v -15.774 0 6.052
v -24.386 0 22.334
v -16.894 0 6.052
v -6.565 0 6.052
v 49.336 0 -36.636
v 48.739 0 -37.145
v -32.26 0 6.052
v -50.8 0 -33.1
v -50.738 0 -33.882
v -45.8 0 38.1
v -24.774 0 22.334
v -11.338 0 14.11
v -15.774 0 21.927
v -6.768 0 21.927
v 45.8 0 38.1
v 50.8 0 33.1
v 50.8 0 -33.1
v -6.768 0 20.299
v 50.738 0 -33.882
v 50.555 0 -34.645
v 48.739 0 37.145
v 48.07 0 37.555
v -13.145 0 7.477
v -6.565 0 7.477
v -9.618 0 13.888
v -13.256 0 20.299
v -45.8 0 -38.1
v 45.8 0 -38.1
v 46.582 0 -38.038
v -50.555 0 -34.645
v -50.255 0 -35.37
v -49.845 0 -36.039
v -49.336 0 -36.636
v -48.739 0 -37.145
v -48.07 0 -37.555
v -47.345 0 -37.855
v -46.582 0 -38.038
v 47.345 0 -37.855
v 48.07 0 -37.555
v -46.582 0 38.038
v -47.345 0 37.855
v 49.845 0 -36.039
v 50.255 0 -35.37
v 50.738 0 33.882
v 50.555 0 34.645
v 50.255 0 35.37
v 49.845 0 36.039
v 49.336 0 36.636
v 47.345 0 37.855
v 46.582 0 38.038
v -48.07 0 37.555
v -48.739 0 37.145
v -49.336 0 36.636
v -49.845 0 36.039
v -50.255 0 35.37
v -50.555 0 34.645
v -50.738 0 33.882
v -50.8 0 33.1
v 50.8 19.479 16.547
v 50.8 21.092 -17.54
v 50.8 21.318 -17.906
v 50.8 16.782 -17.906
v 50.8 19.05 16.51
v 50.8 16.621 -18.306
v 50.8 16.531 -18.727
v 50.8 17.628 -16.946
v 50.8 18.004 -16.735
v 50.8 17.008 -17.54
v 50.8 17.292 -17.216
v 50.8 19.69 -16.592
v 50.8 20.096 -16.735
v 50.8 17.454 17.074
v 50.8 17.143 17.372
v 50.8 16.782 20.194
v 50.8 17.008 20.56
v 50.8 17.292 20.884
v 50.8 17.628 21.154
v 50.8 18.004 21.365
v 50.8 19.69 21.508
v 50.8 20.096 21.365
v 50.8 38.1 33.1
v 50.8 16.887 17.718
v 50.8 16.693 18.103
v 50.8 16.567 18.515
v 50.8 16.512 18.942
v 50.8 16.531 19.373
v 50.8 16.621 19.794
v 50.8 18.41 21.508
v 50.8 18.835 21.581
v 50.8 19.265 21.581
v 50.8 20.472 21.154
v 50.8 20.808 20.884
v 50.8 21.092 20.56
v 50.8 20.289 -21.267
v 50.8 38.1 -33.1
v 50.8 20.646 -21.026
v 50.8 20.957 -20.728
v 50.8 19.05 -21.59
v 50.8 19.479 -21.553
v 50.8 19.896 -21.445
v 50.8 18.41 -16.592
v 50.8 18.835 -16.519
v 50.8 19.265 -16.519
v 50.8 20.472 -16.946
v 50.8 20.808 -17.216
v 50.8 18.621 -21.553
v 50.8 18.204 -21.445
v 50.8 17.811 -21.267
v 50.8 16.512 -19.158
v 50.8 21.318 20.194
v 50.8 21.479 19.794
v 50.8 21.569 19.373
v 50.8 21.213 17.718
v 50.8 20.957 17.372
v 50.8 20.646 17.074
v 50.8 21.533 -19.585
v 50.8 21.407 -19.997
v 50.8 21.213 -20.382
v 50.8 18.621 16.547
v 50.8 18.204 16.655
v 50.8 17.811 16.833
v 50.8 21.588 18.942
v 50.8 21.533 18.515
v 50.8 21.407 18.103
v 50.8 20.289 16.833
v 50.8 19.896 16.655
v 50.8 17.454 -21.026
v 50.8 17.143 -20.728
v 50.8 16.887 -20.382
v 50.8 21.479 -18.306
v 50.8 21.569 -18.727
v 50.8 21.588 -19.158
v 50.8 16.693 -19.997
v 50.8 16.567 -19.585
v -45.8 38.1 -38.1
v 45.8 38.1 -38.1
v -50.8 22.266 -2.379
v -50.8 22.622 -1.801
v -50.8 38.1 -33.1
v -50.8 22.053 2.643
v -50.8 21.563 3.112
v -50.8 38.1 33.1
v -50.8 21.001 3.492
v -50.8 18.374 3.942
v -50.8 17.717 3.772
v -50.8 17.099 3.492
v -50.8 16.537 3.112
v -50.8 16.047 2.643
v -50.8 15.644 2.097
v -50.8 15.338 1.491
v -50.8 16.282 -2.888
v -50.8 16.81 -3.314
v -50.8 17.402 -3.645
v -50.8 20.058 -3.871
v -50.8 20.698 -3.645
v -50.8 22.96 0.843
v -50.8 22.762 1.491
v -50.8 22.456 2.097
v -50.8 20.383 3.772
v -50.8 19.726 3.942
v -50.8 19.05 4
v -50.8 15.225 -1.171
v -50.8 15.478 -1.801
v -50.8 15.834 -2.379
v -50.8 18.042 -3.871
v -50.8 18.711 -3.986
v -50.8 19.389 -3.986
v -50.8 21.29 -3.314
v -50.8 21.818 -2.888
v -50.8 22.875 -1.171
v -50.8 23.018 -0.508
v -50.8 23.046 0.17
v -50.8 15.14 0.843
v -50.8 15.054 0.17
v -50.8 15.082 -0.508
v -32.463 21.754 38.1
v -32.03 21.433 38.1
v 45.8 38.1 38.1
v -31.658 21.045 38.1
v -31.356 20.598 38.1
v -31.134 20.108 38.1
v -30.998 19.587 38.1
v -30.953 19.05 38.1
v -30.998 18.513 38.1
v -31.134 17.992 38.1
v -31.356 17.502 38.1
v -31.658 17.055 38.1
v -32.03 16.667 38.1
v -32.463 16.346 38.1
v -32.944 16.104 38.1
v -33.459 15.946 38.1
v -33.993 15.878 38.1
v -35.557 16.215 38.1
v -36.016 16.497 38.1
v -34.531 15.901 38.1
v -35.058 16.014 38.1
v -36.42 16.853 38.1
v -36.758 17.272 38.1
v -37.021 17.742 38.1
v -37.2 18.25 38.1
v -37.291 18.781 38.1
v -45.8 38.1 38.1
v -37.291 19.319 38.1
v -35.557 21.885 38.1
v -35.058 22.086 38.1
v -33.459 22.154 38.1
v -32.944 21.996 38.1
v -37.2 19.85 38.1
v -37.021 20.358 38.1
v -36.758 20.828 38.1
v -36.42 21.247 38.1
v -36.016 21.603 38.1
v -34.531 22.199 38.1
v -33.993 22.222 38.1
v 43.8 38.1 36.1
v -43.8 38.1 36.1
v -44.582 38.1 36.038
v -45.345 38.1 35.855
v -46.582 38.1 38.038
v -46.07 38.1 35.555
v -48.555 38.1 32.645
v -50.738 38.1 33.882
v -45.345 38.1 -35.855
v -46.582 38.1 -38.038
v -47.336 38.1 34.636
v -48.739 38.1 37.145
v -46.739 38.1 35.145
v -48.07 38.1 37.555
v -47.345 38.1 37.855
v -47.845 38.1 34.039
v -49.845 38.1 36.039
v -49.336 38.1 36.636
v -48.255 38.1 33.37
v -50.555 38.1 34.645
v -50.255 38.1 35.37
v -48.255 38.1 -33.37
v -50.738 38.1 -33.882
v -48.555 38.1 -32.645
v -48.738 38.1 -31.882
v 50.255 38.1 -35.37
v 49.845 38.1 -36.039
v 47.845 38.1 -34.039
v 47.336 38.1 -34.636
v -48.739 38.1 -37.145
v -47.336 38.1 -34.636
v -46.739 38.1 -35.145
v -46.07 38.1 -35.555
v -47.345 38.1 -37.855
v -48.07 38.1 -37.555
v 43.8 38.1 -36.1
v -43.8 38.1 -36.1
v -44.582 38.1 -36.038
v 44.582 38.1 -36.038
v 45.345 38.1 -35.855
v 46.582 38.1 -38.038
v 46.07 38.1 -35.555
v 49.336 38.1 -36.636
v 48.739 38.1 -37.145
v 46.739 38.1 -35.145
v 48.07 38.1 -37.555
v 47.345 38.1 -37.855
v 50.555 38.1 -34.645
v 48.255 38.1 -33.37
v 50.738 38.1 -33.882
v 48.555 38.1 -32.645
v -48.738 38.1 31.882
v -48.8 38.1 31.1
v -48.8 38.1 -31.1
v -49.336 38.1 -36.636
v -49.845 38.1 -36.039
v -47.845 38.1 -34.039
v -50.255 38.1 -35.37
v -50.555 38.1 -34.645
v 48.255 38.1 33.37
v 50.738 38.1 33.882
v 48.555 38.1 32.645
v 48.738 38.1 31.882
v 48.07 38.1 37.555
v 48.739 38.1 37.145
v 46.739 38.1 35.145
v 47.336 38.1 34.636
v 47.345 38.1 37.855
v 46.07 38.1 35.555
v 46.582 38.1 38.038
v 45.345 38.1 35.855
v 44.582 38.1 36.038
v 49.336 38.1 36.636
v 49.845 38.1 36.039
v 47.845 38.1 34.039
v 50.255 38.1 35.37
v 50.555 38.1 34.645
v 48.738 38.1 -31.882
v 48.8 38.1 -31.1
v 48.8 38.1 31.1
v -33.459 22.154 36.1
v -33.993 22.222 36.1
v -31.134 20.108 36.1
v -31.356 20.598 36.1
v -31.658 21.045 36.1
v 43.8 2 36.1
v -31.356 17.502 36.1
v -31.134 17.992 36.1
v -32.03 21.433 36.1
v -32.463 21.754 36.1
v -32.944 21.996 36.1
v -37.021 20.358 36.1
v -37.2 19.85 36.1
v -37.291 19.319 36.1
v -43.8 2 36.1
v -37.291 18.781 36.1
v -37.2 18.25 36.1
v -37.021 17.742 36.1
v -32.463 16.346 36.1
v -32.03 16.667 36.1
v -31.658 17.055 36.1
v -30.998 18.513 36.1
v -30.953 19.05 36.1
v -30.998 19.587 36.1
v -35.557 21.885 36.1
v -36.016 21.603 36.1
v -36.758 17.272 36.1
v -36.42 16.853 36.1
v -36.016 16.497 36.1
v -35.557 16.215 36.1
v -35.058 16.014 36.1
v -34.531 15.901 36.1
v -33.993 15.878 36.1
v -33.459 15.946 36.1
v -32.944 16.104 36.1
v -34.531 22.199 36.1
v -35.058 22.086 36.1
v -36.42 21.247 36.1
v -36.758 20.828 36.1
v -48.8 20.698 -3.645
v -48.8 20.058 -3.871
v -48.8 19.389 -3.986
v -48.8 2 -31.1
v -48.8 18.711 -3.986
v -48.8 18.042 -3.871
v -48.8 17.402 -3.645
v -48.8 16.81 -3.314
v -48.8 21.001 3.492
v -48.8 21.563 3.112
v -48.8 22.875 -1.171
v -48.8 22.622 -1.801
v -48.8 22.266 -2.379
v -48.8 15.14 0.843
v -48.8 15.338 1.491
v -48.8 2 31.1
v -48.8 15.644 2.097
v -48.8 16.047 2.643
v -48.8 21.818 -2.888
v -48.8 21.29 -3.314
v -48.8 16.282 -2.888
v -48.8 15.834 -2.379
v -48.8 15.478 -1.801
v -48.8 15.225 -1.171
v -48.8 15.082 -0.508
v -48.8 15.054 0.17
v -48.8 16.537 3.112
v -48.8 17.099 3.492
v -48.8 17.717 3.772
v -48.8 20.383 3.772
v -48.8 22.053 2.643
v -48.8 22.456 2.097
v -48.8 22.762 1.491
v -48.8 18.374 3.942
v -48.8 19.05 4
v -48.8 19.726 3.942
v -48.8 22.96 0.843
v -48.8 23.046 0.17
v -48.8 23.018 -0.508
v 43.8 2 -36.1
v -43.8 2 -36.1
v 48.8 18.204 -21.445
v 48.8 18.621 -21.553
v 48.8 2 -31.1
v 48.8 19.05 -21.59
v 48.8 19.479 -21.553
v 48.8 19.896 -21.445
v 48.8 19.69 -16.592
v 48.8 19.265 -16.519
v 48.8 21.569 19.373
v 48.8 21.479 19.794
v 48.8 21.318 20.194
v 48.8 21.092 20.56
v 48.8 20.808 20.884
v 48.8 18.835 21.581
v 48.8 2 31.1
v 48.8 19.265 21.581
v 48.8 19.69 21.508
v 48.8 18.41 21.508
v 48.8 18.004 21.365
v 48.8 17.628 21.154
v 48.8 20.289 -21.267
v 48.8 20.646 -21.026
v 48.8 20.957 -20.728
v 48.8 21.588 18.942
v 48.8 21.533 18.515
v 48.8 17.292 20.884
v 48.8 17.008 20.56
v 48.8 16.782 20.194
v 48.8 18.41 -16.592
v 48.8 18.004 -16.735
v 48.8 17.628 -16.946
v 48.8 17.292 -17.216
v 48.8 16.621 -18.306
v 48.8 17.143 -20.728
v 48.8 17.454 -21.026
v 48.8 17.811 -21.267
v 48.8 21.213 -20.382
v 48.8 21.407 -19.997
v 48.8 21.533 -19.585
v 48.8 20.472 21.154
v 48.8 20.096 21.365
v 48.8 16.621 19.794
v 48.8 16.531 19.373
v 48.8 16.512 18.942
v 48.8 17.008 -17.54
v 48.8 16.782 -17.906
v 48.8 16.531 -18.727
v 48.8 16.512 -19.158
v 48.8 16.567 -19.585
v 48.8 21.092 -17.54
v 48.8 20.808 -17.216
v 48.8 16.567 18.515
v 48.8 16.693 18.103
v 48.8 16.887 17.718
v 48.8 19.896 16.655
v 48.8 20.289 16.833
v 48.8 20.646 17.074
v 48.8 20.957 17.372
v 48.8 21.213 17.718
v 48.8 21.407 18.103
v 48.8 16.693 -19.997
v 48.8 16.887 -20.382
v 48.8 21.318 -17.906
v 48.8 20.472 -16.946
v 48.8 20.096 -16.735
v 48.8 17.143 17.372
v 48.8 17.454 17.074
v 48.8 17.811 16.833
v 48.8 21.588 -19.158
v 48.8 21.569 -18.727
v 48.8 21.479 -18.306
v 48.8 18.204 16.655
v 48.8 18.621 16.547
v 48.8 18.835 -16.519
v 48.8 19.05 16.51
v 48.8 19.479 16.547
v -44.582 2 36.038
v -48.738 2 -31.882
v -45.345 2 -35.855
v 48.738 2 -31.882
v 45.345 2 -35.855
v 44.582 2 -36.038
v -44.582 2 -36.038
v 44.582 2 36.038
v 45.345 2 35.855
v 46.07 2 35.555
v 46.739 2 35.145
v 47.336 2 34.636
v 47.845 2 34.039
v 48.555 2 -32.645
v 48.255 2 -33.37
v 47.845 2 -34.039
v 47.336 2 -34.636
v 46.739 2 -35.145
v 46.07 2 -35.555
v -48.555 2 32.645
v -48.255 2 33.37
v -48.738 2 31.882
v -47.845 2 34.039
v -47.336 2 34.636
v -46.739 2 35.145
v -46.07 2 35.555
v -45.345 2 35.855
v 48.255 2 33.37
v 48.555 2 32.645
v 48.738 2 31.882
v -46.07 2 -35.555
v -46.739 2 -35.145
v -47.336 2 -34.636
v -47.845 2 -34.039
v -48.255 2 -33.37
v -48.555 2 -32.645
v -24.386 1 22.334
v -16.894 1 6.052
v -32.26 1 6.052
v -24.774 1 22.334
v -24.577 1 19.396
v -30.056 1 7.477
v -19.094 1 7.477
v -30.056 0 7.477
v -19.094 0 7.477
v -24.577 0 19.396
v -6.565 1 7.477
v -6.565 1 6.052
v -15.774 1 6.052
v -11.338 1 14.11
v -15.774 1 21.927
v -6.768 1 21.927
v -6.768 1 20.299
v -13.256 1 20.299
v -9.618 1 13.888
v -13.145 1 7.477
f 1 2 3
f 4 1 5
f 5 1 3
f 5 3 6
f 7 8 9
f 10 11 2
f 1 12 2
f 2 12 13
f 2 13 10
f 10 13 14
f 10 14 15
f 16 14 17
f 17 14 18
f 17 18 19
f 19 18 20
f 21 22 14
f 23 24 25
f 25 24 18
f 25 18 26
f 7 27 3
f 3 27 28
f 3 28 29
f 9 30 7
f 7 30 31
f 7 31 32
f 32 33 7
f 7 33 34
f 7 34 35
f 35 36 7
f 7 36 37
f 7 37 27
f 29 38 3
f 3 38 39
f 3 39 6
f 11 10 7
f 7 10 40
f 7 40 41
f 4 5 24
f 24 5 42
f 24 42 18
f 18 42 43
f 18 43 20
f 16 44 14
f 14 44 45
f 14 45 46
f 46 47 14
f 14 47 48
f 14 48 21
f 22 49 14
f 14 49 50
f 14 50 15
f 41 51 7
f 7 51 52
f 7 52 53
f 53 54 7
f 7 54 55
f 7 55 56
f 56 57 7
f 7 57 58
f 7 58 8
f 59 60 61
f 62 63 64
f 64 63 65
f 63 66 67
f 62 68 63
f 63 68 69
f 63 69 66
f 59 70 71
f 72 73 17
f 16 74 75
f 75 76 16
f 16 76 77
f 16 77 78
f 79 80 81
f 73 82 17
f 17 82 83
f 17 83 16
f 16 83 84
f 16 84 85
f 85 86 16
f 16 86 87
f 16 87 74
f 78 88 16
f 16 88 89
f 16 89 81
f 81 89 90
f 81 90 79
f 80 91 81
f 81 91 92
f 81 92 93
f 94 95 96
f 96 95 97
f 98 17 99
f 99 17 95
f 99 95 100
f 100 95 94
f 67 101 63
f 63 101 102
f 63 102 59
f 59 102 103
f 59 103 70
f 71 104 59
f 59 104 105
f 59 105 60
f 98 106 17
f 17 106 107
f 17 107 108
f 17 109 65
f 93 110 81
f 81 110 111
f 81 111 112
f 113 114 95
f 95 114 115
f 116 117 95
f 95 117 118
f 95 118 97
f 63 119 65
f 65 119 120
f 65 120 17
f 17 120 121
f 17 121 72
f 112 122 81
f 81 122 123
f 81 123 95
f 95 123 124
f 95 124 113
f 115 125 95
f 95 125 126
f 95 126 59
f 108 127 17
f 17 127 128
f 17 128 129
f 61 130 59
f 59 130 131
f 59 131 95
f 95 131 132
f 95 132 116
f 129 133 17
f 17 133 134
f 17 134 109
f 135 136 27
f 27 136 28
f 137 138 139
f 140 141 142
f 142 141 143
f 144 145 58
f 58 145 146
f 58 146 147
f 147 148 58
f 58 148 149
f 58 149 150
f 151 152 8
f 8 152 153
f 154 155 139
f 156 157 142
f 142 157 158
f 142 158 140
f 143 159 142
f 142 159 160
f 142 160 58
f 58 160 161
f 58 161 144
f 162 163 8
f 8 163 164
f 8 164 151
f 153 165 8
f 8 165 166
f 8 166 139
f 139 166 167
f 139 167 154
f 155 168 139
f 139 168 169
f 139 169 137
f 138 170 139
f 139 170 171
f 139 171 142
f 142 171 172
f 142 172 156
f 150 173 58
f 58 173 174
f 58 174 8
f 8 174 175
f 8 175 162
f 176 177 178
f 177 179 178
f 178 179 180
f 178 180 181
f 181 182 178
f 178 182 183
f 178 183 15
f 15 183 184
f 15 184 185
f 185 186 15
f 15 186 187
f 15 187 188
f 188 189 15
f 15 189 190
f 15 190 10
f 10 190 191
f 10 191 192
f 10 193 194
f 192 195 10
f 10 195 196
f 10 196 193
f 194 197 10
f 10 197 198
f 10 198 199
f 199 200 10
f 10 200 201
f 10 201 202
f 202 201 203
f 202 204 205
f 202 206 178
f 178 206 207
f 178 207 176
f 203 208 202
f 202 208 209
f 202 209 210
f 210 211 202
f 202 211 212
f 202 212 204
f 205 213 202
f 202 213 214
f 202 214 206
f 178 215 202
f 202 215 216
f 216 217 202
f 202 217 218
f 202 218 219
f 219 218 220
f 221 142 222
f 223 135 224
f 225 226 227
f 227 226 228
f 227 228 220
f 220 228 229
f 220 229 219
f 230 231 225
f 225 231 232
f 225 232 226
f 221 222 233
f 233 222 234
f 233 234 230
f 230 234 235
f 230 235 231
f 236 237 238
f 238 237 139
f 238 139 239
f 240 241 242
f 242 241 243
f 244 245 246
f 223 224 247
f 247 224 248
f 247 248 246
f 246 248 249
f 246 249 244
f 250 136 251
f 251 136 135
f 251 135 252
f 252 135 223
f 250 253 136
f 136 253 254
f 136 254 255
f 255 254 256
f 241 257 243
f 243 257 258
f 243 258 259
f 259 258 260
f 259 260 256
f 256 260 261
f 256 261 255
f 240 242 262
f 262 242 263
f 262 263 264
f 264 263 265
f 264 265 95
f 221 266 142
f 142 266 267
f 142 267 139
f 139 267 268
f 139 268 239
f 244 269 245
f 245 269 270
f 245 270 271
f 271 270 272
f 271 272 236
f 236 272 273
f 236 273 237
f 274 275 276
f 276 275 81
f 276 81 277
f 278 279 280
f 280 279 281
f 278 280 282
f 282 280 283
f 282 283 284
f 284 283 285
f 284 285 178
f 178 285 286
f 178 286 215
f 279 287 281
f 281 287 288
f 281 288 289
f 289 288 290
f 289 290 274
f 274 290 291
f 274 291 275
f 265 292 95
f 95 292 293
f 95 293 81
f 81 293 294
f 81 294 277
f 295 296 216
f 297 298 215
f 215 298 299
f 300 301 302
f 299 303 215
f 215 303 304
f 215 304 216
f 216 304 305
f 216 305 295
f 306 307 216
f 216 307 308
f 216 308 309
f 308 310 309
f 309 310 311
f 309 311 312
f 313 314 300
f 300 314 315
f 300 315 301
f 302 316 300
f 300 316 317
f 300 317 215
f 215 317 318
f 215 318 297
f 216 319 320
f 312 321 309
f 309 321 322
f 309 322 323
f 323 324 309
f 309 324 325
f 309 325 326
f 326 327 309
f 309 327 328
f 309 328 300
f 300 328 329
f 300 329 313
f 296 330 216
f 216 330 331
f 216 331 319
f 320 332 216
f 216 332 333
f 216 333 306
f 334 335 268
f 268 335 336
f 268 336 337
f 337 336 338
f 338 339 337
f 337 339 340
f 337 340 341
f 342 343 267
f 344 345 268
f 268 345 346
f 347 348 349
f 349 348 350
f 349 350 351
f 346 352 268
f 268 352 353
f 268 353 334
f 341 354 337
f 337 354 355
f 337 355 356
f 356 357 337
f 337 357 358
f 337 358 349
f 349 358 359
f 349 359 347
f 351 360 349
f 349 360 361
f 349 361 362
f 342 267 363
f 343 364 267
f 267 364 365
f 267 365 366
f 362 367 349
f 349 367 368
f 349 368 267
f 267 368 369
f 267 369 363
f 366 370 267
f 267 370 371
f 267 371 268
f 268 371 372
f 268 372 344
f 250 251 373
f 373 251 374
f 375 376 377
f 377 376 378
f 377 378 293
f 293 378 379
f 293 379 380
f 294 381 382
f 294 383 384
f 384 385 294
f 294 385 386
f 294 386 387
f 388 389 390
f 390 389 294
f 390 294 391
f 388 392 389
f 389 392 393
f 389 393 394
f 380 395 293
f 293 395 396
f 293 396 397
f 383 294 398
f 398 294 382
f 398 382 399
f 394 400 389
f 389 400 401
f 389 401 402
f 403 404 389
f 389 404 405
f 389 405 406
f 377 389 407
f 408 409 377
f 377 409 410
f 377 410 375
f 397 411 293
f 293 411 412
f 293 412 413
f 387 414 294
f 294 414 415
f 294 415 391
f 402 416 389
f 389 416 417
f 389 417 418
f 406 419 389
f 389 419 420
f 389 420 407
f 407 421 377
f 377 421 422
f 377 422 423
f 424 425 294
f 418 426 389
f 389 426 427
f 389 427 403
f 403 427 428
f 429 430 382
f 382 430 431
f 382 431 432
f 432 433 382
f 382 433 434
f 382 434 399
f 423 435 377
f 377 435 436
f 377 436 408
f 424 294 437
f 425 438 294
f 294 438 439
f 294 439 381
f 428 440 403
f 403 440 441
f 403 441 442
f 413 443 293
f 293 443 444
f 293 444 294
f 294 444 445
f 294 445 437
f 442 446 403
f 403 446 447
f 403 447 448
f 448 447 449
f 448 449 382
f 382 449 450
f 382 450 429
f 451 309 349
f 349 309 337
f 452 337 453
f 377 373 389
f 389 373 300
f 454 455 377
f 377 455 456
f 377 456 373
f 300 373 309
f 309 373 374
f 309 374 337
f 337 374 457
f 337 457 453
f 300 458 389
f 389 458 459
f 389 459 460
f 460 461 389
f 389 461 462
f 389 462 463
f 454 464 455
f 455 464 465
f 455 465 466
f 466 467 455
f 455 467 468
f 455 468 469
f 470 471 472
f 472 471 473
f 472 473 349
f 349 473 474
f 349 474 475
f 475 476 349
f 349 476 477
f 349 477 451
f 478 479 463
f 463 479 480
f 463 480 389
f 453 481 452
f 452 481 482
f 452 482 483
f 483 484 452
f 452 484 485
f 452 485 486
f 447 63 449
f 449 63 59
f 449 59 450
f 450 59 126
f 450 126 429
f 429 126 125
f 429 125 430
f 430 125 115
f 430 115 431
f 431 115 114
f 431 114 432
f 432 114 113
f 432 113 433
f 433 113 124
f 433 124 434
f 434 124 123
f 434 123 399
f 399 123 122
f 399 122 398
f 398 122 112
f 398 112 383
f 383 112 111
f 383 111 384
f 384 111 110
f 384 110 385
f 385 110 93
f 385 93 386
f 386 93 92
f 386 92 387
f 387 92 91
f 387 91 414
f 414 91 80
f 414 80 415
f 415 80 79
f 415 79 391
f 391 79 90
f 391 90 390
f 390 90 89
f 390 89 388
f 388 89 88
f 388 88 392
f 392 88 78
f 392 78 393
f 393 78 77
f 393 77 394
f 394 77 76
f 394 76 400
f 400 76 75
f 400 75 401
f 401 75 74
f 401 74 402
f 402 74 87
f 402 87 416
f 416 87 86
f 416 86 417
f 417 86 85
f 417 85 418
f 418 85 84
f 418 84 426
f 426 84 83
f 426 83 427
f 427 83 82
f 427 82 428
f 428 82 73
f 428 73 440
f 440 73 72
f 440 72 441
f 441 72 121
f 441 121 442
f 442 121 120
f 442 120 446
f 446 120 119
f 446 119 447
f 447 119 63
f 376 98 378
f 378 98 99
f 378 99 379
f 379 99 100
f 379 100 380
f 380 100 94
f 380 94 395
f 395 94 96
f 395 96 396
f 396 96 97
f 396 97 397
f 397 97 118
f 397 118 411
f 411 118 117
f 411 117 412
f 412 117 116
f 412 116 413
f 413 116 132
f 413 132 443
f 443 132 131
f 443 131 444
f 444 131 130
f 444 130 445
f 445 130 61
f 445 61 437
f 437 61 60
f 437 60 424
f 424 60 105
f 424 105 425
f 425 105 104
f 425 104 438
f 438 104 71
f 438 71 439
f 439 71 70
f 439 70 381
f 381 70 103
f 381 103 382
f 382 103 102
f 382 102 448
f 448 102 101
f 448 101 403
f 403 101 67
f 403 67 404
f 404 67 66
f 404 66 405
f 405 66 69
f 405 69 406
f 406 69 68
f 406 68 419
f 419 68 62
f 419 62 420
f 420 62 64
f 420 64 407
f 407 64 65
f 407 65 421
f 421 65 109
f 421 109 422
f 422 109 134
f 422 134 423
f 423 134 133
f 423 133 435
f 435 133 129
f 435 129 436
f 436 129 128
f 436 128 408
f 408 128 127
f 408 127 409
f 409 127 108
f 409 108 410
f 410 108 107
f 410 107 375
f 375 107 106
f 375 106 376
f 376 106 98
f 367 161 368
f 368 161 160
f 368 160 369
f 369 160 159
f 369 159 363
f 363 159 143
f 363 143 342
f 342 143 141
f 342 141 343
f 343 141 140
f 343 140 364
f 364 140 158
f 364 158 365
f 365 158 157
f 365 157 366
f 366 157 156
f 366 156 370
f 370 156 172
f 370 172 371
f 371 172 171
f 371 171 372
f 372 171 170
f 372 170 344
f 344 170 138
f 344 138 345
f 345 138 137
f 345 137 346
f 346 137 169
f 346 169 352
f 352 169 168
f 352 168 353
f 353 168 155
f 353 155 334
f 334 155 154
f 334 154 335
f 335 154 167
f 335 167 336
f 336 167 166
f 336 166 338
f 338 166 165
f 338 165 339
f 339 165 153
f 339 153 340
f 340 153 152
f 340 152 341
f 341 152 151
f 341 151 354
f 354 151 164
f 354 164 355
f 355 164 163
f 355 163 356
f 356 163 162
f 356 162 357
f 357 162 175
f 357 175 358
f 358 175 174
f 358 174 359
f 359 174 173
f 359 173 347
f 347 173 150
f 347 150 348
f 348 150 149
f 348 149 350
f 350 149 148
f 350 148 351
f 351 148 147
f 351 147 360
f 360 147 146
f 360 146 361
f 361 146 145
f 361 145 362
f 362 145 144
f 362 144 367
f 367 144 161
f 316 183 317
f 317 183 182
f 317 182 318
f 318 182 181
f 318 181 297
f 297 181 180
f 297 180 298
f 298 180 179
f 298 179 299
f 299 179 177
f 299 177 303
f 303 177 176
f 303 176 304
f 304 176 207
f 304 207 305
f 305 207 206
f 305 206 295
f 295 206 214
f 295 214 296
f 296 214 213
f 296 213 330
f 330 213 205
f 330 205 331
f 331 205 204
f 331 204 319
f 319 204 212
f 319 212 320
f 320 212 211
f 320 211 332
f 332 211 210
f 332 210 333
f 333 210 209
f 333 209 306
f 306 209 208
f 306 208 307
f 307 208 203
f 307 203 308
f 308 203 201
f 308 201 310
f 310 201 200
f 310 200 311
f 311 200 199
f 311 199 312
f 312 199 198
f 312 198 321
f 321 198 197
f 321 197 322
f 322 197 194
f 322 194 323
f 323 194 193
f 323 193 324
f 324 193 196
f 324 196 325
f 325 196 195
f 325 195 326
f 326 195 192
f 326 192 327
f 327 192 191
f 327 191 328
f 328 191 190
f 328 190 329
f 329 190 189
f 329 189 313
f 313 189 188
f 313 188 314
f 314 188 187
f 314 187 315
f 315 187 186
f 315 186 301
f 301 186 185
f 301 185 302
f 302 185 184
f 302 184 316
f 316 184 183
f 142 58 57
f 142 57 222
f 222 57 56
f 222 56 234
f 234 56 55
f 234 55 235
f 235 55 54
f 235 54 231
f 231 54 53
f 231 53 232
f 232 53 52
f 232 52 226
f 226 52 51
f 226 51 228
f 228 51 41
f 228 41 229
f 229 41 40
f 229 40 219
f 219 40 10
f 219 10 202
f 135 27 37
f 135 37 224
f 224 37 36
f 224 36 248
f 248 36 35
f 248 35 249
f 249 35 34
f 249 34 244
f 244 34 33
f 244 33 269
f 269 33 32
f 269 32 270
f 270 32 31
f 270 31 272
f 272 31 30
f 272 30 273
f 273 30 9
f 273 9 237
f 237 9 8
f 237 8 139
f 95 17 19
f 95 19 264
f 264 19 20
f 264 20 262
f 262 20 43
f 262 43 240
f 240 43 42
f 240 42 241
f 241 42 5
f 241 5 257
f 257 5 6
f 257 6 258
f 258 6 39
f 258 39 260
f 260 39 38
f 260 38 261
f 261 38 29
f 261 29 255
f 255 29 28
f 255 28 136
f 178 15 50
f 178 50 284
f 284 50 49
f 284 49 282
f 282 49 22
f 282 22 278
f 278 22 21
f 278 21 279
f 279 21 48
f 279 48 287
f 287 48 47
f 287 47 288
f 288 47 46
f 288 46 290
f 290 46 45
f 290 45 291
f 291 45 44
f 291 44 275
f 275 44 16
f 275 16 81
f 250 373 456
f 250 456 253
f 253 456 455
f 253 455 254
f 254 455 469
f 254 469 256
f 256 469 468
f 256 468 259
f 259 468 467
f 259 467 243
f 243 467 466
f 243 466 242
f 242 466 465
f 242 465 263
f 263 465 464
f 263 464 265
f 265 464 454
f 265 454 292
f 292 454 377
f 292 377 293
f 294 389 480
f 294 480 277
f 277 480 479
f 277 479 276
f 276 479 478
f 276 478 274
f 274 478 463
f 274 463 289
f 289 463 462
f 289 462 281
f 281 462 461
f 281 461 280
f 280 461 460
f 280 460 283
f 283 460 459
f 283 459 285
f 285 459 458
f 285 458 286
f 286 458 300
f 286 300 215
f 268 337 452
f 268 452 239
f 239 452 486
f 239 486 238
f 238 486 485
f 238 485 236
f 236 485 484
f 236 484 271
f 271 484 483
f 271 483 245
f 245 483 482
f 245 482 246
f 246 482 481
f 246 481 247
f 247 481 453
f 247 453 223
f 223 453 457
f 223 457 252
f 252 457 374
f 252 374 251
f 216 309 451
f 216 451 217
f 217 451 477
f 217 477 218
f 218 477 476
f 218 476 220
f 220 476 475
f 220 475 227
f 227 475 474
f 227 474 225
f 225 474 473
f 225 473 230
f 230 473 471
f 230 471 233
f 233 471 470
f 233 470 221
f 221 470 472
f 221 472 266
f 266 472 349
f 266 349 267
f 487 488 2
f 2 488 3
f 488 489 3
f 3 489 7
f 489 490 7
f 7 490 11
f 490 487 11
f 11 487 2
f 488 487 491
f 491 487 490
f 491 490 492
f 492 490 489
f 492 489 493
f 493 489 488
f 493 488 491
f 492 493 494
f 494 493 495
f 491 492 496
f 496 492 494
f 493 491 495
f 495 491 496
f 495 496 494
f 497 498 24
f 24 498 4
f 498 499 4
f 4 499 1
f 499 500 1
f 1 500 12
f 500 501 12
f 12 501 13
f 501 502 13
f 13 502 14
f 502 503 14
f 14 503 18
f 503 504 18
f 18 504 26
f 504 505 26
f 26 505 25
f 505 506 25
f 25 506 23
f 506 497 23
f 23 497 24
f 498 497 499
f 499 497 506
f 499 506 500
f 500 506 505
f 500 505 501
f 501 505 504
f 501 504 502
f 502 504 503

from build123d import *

# Parameters (mm, degrees)
SKETCH1_W           = 101.6
SKETCH1_H           = 76.2
BOSS_EXTRUDE1_DEPTH = 38.1
SKETCH3_W           = 97.6
SKETCH3_H           = 72.2
CUT_EXTRUDE1_DEPTH  = 36.1
SKETCH7_R           = 2.54
CUT_EXTRUDE2_DEPTH  = 2
SKETCH9_R           = 4
CUT_EXTRUDE3_DEPTH  = 2
SKETCH11_R          = 3.175
CUT_EXTRUDE4_DEPTH  = 2
FILLET1_R           = 5
FILLET2_R           = 5
CUT_EXTRUDE5_DEPTH  = 1


with BuildPart() as part:
    # Sketch1 → Boss-Extrude1 (new body)
    with BuildSketch(Plane(origin=(0, 0, 0), x_dir=(1, 0, 0), z_dir=(0, 1, 0))):
        Rectangle(SKETCH1_W, SKETCH1_H)
    extrude(amount=BOSS_EXTRUDE1_DEPTH)

    # Sketch3 → Cut-Extrude1 (cut)
    with BuildSketch(Plane(origin=(0, 38.1, 0), x_dir=(1, 0, 0), z_dir=(0, 1, 0))):
        Rectangle(SKETCH3_W, SKETCH3_H)
    extrude(amount=-CUT_EXTRUDE1_DEPTH, mode=Mode.SUBTRACT)

    # Sketch7 → Cut-Extrude2 (cut)
    with BuildSketch(Plane(origin=(50.8, 0, 0), x_dir=(0, 0, -1), z_dir=(1, 0, 0))):
        with Locations((-19.05, 19.05)):
            Circle(SKETCH7_R)
        with Locations((19.05, 19.05)):
            Circle(SKETCH7_R)
    extrude(amount=-CUT_EXTRUDE2_DEPTH, mode=Mode.SUBTRACT)

    # Sketch9 → Cut-Extrude3 (cut)
    with BuildSketch(Plane.ZY.offset(50.8)):
        with Locations((0, 19.05)):
            Circle(SKETCH9_R)
    extrude(amount=-CUT_EXTRUDE3_DEPTH, mode=Mode.SUBTRACT)

    # Sketch11 → Cut-Extrude4 (cut)
    with BuildSketch(Plane.XY.offset(38.1)):
        with Locations((-34.127797524, 19.05)):
            Circle(SKETCH11_R)
    extrude(amount=-CUT_EXTRUDE4_DEPTH, mode=Mode.SUBTRACT)

    # Fillet1
    fillet1_edges = [part.edges().sort_by_distance(p)[0] for p in [
        (50.8, 19.05, 38.1),
        (-50.8, 19.05, 38.1),
        (-50.8, 19.05, -38.1),
        (50.8, 19.05, -38.1),
    ]]
    fillet(fillet1_edges, radius=FILLET1_R)

    # Fillet2
    fillet2_edges = [part.edges().sort_by_distance(p)[0] for p in [
        (48.8, 20.05, 36.1),
        (-48.8, 20.05, 36.1),
        (-48.8, 20.05, -36.1),
        (48.8, 20.05, -36.1),
    ]]
    fillet(fillet2_edges, radius=FILLET2_R)

    # Sketch12 → Cut-Extrude5 (cut)
    # profile 1 of 2: a face of its own
    with BuildSketch(Plane.XZ):
        Polygon((-16.893847177, 6.052120704), (-32.260033074, 6.052120704), (-24.77410559, 22.334171986), (-24.386134837, 22.334171986), align=None)
        Polygon((-19.09446817, 7.476800191), (-24.576940125, 19.395770544), (-30.056231992, 7.476800191), align=None, mode=Mode.SUBTRACT)
    # profile 2 of 2: a face of its own
    with BuildSketch(Plane.XZ):
        Polygon((-6.564920895, 6.052120704), (-15.774456151, 6.052120704), (-11.338233194, 14.110464053), (-15.774456151, 21.927120704), (-6.768446536, 21.927120704), (-6.768446536, 20.298915576), (-13.255826343, 20.298915576), (-9.61780551, 13.887857884), (-13.144523258, 7.476800191), (-6.564920895, 7.476800191), align=None)
    extrude(amount=-CUT_EXTRUDE5_DEPTH, mode=Mode.SUBTRACT)


solid = part.part
